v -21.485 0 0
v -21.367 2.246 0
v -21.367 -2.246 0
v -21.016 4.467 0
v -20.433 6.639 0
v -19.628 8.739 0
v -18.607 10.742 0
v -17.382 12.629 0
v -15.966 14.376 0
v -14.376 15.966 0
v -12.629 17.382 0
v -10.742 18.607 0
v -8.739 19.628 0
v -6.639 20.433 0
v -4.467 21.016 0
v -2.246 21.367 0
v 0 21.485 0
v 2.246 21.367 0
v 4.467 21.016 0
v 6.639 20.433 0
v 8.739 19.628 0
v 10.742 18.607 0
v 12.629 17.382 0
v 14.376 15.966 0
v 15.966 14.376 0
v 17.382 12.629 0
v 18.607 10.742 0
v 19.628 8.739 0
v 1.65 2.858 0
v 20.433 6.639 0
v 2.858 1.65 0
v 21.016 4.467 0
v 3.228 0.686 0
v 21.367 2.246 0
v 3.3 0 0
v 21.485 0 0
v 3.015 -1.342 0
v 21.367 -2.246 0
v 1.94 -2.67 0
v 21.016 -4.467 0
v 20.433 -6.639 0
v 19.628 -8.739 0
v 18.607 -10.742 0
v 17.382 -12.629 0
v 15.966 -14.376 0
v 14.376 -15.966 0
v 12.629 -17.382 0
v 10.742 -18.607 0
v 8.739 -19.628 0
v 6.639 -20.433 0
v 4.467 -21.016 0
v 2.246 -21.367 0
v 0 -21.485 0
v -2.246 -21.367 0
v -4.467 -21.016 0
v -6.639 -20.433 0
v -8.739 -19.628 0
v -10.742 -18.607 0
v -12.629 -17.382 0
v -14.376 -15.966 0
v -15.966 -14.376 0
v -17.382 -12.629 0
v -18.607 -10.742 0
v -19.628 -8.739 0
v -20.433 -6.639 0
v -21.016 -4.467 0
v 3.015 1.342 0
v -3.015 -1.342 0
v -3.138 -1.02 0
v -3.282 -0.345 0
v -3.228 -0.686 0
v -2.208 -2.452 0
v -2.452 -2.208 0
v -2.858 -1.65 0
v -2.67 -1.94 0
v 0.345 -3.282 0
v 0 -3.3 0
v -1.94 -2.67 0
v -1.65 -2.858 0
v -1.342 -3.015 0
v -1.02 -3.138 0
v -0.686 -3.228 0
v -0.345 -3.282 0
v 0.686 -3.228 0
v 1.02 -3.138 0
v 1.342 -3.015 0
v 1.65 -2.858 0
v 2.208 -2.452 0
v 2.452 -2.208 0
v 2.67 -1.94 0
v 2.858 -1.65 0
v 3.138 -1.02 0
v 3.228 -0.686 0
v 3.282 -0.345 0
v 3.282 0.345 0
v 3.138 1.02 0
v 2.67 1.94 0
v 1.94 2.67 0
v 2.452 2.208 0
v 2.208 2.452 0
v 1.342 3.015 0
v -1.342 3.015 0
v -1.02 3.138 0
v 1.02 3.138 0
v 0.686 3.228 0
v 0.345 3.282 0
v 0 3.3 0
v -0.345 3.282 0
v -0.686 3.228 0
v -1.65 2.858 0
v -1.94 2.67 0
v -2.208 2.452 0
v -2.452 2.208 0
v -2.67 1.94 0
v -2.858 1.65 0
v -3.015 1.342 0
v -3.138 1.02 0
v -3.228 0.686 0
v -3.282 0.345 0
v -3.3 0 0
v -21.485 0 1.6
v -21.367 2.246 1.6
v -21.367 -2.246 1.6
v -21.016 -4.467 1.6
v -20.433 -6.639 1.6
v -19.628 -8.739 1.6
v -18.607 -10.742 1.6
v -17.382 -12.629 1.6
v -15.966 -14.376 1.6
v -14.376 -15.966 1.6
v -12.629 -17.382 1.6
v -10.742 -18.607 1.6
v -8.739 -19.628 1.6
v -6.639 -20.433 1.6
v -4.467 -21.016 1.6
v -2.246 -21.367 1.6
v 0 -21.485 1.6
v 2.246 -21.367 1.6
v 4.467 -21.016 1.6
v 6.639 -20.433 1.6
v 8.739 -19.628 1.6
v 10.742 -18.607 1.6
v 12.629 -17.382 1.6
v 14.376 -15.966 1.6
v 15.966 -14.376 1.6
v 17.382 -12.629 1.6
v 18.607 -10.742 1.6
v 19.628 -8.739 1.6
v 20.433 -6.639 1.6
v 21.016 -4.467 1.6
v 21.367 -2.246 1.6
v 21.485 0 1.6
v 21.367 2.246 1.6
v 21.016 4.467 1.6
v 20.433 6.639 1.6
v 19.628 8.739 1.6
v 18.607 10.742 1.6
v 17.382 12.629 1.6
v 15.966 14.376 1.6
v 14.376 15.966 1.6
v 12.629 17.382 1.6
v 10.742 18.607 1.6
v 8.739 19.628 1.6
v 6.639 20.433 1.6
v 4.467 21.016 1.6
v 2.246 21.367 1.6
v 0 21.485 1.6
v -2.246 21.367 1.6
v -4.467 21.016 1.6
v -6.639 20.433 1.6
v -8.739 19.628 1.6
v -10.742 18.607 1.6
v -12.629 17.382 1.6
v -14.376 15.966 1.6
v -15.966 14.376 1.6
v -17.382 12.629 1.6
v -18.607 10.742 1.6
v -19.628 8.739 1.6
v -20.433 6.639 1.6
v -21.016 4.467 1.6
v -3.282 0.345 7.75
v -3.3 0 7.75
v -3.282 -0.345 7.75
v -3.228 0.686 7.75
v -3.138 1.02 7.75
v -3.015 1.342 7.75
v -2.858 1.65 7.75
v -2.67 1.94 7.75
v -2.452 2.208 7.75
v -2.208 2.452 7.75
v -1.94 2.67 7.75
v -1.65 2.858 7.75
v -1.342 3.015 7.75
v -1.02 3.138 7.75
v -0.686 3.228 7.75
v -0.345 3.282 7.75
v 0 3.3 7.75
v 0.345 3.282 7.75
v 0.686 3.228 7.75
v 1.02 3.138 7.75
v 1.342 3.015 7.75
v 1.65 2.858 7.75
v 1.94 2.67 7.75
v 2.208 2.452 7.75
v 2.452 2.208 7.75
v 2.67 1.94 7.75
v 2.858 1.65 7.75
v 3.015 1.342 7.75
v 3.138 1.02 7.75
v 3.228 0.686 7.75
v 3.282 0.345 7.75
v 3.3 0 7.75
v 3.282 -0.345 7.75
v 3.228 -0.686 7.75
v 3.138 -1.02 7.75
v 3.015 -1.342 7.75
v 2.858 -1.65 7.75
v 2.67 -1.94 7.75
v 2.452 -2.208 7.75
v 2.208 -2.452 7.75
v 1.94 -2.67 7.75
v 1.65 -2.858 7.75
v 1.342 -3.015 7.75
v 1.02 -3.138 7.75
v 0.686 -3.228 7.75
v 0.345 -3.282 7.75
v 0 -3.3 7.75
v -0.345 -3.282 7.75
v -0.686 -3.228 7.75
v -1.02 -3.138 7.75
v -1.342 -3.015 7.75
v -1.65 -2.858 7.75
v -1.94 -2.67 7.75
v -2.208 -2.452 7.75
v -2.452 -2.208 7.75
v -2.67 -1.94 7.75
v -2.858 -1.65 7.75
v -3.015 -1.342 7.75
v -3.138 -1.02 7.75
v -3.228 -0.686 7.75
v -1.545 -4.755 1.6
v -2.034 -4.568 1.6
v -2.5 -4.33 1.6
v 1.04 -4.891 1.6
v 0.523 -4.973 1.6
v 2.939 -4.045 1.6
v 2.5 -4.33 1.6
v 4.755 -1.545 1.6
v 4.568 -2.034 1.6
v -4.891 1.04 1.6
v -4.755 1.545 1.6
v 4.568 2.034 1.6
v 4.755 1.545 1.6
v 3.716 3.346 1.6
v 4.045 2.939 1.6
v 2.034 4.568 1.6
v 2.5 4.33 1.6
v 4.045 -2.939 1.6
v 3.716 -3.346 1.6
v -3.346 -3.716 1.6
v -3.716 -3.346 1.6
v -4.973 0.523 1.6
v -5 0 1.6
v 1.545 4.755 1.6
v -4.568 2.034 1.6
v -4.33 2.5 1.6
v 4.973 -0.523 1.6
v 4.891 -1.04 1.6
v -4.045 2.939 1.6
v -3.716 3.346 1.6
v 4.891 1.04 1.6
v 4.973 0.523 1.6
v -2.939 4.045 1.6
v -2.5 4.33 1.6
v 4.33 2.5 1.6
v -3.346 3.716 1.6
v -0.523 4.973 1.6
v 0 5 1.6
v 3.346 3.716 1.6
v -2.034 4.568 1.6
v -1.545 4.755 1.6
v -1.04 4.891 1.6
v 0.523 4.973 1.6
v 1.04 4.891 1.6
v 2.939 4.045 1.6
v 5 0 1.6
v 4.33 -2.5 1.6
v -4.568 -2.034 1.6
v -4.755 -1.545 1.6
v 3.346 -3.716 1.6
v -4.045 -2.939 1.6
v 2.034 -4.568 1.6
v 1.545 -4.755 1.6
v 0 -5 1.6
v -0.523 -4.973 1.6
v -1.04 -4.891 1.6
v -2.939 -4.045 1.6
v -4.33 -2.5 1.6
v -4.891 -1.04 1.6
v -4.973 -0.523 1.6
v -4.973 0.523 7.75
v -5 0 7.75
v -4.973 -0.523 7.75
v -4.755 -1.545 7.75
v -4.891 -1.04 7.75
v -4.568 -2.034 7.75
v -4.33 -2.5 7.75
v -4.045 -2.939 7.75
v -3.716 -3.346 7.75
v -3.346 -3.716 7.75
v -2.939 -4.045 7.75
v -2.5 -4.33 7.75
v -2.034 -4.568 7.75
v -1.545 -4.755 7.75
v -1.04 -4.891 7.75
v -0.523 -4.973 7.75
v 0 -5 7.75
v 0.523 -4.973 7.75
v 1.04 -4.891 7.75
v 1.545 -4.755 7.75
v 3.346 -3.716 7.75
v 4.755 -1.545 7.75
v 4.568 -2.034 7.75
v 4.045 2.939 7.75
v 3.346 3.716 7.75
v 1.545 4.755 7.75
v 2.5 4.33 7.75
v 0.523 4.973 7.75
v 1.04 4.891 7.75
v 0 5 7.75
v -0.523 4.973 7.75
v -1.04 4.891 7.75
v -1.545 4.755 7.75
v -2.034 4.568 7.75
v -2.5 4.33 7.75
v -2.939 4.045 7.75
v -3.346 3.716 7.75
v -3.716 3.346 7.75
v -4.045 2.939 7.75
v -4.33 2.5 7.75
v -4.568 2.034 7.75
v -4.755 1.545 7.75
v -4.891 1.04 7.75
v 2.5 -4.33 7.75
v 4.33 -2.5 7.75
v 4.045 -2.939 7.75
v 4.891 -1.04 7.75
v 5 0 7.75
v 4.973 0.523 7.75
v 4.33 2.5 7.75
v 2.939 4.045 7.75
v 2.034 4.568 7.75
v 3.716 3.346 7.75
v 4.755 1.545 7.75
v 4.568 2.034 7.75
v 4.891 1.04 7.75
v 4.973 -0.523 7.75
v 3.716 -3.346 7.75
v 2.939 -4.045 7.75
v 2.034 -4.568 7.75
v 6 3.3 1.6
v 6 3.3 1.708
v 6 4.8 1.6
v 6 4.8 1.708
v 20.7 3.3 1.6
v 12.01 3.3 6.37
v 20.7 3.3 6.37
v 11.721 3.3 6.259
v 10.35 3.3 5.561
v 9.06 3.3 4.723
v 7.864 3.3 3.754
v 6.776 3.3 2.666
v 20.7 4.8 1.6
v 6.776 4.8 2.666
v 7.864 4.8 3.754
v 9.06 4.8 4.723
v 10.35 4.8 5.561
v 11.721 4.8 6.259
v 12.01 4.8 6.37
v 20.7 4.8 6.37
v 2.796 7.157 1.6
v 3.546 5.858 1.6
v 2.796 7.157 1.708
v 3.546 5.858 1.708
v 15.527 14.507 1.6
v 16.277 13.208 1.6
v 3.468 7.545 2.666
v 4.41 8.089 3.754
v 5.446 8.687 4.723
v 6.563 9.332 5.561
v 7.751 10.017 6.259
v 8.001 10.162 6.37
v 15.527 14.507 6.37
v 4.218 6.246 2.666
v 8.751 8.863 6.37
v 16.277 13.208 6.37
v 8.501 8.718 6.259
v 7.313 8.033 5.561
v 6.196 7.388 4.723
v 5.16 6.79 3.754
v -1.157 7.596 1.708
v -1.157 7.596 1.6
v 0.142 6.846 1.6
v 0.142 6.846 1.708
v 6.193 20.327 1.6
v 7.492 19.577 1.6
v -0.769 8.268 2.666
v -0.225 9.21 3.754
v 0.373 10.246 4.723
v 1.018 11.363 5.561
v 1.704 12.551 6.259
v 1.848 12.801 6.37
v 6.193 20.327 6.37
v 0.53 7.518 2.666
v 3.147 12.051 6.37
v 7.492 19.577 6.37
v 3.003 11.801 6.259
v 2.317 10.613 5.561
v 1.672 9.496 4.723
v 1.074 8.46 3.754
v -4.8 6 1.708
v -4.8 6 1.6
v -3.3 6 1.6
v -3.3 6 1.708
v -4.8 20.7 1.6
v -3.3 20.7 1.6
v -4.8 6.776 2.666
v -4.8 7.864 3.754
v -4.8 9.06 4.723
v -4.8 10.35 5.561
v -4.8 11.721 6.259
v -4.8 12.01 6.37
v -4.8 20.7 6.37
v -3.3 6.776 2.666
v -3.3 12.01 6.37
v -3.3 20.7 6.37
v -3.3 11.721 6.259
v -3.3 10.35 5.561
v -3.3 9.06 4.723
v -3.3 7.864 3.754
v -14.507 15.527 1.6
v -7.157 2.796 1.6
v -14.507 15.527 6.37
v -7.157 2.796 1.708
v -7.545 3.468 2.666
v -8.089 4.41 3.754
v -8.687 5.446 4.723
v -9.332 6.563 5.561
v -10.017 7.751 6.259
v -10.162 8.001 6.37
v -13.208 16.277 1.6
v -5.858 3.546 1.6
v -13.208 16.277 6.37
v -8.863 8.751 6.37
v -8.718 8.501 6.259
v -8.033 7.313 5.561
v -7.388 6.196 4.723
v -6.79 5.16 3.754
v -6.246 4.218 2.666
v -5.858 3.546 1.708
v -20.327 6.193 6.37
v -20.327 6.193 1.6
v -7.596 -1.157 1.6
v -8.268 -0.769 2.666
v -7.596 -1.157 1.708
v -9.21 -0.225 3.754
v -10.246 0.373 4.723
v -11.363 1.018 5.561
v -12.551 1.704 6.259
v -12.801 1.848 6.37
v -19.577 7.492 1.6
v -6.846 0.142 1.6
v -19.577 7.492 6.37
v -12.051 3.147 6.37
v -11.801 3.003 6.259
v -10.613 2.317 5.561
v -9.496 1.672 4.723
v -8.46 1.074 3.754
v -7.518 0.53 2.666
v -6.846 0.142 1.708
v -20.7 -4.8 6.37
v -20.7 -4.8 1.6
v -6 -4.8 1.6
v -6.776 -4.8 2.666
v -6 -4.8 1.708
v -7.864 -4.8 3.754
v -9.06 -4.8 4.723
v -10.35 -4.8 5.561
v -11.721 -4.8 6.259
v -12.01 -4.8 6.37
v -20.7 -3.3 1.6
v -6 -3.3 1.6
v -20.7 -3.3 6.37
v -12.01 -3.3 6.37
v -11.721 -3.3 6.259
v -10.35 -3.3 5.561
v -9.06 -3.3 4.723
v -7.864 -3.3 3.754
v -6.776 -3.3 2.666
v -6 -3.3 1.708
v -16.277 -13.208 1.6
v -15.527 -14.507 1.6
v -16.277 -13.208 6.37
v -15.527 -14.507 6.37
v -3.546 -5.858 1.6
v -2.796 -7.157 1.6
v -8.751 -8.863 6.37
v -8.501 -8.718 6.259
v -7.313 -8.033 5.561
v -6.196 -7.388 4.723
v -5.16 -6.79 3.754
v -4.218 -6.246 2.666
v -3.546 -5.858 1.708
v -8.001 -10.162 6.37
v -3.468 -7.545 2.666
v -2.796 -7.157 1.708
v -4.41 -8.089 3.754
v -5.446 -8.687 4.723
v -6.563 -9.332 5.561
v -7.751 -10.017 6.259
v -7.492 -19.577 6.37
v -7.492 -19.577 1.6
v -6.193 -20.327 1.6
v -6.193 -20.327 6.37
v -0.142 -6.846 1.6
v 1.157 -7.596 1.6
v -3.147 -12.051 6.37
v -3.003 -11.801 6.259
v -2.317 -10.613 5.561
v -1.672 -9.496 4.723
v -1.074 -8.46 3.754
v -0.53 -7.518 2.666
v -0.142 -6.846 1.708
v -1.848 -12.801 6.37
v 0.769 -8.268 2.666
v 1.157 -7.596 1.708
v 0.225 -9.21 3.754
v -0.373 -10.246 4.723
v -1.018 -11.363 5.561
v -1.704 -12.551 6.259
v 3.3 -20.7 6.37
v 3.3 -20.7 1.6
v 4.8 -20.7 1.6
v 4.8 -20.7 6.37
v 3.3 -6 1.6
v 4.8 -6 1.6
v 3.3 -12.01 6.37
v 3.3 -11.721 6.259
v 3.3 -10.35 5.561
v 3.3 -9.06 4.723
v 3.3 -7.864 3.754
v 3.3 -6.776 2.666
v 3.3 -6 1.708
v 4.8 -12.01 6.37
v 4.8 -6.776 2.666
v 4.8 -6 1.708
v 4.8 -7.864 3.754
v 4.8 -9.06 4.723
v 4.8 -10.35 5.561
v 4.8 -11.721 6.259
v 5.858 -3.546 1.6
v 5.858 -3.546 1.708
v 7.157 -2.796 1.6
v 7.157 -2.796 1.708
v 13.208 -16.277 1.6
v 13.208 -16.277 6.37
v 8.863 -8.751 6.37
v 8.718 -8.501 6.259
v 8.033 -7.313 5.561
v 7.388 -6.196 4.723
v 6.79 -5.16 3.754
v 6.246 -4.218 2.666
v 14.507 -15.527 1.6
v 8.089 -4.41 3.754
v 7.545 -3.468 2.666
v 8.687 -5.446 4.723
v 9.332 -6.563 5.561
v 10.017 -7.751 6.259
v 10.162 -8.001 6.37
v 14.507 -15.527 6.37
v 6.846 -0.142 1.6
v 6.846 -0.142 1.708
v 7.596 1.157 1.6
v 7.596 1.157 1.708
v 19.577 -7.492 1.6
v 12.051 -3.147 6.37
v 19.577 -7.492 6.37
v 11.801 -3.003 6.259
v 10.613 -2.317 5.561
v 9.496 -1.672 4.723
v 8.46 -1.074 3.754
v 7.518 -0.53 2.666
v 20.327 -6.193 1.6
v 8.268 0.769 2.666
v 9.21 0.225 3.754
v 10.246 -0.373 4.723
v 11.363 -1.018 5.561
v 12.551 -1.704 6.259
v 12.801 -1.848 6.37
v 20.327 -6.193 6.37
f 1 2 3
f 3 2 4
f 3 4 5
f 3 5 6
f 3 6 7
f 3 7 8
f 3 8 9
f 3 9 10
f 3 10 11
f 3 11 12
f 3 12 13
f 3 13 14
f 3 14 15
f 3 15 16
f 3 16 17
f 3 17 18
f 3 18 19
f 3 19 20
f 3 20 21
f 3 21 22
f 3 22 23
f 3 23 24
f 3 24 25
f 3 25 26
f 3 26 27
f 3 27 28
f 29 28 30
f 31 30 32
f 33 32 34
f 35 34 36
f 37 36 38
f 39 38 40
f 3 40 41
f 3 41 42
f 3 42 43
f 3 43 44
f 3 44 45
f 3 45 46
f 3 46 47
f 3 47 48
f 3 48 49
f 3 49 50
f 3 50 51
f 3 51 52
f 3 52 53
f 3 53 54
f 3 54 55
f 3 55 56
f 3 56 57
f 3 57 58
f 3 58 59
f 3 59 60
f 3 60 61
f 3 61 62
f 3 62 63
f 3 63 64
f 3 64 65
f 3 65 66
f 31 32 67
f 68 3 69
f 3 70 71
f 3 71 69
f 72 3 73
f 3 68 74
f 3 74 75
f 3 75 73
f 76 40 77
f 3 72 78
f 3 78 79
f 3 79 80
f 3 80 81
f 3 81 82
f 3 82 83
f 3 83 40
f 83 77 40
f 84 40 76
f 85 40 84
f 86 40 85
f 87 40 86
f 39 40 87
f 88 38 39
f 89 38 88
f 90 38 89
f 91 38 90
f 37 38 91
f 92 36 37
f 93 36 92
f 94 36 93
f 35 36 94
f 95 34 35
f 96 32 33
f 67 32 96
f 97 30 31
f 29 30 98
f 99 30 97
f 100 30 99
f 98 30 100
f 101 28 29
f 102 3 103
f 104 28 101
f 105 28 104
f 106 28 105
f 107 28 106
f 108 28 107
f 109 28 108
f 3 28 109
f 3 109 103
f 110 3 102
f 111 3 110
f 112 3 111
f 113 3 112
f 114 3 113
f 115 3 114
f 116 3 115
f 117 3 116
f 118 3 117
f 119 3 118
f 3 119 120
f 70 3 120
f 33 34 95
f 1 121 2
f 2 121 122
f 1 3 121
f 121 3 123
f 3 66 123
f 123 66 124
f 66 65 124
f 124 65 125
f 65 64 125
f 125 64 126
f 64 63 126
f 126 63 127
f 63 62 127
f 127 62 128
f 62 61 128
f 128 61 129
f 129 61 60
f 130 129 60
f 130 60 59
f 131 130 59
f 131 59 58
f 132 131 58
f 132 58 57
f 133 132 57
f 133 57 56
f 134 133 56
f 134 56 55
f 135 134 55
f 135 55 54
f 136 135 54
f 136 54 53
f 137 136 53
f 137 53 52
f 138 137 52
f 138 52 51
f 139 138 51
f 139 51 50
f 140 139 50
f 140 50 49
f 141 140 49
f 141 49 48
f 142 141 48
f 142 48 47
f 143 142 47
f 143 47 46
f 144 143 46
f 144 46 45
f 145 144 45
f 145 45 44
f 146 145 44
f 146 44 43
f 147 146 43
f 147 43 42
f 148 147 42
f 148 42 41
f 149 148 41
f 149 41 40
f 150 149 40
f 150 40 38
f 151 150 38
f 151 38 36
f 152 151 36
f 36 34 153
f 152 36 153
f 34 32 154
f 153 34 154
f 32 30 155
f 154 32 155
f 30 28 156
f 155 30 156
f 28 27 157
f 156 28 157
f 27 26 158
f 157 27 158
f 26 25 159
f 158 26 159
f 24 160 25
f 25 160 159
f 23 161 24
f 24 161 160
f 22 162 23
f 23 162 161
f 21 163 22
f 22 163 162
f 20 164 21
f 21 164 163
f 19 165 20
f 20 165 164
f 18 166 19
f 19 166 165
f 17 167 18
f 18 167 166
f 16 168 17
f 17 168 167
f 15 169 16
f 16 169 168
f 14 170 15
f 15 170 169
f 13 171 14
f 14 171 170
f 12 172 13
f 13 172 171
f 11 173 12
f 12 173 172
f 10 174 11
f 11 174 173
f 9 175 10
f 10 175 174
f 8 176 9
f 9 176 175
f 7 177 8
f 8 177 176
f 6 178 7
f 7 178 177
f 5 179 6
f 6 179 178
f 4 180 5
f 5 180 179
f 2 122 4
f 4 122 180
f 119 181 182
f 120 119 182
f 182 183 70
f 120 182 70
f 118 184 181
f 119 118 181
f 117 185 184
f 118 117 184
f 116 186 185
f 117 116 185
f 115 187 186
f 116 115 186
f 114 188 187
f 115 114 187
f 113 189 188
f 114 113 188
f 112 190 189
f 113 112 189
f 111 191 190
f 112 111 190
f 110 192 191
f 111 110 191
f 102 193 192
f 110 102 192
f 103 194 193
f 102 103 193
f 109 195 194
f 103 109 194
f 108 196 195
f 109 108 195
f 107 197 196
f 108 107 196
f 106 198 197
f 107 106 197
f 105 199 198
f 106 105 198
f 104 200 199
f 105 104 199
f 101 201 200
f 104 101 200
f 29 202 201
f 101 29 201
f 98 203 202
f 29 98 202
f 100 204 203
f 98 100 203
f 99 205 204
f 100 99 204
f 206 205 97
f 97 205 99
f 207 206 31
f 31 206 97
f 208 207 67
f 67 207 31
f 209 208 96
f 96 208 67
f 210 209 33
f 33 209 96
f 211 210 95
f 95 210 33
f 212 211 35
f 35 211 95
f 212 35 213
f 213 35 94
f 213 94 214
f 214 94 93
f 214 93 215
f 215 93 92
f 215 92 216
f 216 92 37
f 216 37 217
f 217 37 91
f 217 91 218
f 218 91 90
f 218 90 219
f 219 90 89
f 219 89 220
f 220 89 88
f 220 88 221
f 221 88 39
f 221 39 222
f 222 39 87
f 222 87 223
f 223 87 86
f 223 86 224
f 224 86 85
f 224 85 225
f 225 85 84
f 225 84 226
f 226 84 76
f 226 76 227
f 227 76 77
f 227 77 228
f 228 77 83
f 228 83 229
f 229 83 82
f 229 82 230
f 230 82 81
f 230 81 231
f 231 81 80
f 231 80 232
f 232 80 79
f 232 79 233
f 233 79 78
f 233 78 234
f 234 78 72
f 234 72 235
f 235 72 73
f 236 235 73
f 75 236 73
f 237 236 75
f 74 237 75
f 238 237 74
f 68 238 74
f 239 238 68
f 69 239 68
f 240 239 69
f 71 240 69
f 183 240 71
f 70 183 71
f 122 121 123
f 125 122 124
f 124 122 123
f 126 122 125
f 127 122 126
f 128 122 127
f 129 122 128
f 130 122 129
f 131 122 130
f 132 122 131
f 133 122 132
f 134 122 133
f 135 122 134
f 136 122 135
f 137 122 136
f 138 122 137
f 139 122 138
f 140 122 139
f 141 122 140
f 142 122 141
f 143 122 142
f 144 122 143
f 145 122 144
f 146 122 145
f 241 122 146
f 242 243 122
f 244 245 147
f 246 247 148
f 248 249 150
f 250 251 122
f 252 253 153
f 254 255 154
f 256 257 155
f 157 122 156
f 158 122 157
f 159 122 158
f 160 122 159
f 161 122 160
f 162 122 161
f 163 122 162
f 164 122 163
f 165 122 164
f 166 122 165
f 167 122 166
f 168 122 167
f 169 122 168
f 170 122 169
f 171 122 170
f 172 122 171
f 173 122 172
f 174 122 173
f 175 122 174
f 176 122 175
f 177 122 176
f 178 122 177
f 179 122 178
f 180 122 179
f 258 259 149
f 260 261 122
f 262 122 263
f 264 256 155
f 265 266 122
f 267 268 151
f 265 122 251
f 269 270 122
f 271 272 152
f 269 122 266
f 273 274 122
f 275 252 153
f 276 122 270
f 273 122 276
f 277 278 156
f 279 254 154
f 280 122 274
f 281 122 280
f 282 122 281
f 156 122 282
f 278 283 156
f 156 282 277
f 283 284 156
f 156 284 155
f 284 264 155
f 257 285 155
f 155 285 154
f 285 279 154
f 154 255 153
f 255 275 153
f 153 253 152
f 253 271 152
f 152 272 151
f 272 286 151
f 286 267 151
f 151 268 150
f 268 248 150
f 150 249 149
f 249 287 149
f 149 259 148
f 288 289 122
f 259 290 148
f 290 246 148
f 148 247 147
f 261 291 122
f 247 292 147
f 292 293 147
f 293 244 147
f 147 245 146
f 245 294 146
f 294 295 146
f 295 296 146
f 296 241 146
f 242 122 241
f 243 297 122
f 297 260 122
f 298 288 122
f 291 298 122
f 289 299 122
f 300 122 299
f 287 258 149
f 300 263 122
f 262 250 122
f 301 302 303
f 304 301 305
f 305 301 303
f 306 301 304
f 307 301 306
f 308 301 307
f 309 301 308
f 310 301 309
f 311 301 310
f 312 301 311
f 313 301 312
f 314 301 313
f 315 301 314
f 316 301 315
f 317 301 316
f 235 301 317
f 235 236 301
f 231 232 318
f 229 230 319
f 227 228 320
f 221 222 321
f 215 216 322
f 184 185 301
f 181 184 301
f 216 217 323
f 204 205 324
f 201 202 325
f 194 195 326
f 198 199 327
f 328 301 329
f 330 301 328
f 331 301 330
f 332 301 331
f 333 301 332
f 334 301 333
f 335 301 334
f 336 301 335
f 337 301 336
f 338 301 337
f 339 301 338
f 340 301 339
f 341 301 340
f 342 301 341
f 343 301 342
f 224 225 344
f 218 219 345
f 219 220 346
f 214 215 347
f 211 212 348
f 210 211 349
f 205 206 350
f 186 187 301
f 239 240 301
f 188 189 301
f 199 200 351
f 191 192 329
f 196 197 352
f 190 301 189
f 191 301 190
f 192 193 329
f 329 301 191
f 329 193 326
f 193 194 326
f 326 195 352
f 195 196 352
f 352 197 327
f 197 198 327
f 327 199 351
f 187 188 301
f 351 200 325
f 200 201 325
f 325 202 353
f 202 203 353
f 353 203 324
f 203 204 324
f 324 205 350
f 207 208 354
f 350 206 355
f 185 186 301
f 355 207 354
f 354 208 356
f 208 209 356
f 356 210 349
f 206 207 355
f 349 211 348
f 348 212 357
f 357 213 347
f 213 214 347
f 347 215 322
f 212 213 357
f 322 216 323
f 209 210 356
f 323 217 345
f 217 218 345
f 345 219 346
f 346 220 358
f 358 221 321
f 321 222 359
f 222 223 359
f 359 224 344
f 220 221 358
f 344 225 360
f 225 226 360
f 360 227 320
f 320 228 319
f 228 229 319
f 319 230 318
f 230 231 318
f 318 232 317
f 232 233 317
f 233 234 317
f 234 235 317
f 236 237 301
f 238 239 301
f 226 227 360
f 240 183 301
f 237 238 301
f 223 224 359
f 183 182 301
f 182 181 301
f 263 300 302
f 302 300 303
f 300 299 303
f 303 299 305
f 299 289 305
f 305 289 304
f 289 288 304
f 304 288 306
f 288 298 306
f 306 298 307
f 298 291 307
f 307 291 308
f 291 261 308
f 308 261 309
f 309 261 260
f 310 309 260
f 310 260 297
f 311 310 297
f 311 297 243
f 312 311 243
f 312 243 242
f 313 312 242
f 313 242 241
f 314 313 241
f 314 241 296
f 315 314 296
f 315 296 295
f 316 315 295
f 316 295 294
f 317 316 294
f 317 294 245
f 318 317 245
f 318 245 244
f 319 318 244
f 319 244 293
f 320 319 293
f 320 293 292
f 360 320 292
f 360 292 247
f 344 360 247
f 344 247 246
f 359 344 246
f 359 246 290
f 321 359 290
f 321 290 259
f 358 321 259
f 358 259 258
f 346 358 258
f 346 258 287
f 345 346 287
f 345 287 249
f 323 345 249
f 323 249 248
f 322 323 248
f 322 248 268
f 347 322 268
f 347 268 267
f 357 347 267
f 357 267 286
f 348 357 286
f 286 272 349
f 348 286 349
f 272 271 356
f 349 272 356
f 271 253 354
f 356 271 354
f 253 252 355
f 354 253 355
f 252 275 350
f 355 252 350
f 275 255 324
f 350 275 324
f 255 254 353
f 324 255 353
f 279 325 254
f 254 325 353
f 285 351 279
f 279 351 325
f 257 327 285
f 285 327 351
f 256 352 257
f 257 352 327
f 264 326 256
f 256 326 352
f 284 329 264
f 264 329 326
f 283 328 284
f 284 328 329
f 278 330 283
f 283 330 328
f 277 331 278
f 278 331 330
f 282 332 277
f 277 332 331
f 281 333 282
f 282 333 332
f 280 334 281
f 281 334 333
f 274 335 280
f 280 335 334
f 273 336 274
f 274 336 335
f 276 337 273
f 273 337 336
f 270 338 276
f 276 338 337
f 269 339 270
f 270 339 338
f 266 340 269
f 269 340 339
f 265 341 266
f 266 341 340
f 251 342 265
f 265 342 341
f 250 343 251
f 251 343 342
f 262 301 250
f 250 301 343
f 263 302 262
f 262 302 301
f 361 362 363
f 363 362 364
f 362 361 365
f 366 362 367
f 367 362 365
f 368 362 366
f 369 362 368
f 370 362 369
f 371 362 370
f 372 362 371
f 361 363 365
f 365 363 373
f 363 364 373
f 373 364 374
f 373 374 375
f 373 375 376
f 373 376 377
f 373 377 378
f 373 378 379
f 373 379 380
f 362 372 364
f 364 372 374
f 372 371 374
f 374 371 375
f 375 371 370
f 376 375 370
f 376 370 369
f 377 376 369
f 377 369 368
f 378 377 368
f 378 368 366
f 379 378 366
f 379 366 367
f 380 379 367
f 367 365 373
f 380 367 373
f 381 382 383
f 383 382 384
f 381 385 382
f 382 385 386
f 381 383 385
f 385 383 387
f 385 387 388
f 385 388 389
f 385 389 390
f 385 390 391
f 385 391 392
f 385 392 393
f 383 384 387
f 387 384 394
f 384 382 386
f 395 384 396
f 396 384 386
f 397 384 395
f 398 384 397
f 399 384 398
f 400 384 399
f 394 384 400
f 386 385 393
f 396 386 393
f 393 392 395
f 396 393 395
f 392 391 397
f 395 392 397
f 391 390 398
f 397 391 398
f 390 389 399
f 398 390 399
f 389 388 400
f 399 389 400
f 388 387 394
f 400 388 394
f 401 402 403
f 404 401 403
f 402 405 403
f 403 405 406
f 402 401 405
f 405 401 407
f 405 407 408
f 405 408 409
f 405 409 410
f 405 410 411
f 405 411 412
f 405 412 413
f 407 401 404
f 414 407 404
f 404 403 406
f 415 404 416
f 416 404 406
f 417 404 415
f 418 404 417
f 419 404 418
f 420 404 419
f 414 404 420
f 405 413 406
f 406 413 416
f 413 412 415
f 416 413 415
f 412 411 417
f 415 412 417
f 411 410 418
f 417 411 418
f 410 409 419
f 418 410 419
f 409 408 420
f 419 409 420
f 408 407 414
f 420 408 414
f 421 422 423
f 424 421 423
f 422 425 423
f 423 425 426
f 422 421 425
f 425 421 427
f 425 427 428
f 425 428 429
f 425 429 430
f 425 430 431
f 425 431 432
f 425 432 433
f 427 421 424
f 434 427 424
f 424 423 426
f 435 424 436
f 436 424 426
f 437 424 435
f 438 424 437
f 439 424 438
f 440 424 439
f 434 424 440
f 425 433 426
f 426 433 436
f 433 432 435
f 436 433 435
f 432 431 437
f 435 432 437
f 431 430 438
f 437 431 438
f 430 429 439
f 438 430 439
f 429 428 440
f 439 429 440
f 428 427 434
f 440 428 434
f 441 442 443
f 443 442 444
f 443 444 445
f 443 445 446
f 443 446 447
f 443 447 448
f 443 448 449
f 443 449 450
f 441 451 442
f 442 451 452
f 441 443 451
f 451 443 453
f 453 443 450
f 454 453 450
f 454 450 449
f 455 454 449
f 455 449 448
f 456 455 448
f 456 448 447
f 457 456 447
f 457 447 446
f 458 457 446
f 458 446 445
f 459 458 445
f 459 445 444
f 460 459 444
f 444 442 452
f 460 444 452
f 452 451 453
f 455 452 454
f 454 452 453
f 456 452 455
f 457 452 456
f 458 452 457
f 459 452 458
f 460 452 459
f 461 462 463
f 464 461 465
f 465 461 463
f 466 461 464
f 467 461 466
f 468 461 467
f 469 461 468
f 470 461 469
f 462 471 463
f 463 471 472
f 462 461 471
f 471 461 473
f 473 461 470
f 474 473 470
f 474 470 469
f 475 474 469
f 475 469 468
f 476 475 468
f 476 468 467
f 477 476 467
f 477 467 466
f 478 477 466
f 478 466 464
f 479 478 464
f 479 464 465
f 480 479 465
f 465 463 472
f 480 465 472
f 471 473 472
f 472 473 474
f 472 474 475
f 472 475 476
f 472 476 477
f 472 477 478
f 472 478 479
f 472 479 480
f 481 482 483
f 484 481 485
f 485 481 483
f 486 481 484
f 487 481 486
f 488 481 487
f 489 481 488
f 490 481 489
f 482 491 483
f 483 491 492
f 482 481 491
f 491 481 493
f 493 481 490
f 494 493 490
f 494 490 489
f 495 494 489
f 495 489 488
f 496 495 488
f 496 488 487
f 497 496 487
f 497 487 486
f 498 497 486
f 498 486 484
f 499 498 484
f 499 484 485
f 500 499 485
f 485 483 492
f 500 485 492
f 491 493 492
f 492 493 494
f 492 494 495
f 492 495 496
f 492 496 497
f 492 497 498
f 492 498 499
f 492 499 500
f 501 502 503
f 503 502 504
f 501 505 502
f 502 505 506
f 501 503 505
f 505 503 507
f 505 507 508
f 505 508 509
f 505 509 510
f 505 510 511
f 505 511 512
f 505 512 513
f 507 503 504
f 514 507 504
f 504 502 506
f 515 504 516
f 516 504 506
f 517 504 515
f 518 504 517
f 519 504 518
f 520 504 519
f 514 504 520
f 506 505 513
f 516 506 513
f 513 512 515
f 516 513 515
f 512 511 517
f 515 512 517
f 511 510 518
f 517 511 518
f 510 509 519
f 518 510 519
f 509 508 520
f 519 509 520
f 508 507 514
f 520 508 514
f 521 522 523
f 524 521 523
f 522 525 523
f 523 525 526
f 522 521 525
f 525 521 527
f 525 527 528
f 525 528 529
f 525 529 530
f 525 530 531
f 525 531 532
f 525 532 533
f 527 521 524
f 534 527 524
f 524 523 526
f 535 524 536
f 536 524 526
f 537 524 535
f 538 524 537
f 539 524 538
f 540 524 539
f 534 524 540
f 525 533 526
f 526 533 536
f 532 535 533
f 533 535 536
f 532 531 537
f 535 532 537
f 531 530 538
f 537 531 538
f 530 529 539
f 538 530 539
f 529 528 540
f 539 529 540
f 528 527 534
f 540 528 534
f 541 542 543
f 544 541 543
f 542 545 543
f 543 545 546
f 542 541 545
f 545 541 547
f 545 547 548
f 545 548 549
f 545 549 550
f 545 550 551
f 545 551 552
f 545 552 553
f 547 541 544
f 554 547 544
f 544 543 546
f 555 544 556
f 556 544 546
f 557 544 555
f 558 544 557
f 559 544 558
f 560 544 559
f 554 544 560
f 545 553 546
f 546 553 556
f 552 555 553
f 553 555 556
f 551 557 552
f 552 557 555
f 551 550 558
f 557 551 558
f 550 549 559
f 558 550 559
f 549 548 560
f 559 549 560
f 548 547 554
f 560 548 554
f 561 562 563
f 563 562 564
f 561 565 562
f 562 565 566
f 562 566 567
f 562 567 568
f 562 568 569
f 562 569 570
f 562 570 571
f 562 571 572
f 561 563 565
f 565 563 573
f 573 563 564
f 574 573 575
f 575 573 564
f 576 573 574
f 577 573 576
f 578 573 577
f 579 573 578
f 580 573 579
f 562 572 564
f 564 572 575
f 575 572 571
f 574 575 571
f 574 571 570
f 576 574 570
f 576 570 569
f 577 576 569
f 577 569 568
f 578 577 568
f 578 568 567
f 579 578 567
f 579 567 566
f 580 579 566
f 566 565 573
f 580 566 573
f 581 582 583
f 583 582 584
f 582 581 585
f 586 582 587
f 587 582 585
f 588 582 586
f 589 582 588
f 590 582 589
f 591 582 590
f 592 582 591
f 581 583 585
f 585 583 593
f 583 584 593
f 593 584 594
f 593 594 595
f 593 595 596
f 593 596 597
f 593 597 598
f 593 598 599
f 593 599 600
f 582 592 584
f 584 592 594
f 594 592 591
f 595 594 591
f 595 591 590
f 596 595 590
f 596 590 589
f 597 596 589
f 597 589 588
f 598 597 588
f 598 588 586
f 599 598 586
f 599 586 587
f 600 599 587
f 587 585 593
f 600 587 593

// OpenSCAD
//# Tangent bladed fan for Grammies sewing machine motor

resolution=60;
inside_r_correction=0.8;

rotor_r=42.97/2;
rotor_h=1.6;

blade_l=14.7;
blade_h=6.37-rotor_h;
blade_t=1.5;

axel_r=(5.8+inside_r_correction)/2;
hub_r=10/2 ;    // WAS axel_r+1.98/2;
hub_h=7.75;

//# Tangent bladed fan for Grammies sewing machine motor



difference()
{
	union()
		{
		cylinder(r=rotor_r, h=rotor_h, $fn=resolution);
		cylinder(r=hub_r, h=hub_h, $fn=resolution);
		}
	cylinder(r=axel_r, h=20,$fn=resolution);
}


for ( blade_num = [0,1,2,3,4,5,6,7,8,9,10,11]) {
	rotate([0,0,(360/12*blade_num)])
	translate([hub_r+1,axel_r-0,rotor_h])
		intersection(){
#			cube([blade_l, blade_t, blade_h]);

			rotate([90,0,0]) translate([blade_l-3,-blade_h-4,-3])
				cylinder(r=blade_l, h=5, $fn=resolution);
		}
	}
